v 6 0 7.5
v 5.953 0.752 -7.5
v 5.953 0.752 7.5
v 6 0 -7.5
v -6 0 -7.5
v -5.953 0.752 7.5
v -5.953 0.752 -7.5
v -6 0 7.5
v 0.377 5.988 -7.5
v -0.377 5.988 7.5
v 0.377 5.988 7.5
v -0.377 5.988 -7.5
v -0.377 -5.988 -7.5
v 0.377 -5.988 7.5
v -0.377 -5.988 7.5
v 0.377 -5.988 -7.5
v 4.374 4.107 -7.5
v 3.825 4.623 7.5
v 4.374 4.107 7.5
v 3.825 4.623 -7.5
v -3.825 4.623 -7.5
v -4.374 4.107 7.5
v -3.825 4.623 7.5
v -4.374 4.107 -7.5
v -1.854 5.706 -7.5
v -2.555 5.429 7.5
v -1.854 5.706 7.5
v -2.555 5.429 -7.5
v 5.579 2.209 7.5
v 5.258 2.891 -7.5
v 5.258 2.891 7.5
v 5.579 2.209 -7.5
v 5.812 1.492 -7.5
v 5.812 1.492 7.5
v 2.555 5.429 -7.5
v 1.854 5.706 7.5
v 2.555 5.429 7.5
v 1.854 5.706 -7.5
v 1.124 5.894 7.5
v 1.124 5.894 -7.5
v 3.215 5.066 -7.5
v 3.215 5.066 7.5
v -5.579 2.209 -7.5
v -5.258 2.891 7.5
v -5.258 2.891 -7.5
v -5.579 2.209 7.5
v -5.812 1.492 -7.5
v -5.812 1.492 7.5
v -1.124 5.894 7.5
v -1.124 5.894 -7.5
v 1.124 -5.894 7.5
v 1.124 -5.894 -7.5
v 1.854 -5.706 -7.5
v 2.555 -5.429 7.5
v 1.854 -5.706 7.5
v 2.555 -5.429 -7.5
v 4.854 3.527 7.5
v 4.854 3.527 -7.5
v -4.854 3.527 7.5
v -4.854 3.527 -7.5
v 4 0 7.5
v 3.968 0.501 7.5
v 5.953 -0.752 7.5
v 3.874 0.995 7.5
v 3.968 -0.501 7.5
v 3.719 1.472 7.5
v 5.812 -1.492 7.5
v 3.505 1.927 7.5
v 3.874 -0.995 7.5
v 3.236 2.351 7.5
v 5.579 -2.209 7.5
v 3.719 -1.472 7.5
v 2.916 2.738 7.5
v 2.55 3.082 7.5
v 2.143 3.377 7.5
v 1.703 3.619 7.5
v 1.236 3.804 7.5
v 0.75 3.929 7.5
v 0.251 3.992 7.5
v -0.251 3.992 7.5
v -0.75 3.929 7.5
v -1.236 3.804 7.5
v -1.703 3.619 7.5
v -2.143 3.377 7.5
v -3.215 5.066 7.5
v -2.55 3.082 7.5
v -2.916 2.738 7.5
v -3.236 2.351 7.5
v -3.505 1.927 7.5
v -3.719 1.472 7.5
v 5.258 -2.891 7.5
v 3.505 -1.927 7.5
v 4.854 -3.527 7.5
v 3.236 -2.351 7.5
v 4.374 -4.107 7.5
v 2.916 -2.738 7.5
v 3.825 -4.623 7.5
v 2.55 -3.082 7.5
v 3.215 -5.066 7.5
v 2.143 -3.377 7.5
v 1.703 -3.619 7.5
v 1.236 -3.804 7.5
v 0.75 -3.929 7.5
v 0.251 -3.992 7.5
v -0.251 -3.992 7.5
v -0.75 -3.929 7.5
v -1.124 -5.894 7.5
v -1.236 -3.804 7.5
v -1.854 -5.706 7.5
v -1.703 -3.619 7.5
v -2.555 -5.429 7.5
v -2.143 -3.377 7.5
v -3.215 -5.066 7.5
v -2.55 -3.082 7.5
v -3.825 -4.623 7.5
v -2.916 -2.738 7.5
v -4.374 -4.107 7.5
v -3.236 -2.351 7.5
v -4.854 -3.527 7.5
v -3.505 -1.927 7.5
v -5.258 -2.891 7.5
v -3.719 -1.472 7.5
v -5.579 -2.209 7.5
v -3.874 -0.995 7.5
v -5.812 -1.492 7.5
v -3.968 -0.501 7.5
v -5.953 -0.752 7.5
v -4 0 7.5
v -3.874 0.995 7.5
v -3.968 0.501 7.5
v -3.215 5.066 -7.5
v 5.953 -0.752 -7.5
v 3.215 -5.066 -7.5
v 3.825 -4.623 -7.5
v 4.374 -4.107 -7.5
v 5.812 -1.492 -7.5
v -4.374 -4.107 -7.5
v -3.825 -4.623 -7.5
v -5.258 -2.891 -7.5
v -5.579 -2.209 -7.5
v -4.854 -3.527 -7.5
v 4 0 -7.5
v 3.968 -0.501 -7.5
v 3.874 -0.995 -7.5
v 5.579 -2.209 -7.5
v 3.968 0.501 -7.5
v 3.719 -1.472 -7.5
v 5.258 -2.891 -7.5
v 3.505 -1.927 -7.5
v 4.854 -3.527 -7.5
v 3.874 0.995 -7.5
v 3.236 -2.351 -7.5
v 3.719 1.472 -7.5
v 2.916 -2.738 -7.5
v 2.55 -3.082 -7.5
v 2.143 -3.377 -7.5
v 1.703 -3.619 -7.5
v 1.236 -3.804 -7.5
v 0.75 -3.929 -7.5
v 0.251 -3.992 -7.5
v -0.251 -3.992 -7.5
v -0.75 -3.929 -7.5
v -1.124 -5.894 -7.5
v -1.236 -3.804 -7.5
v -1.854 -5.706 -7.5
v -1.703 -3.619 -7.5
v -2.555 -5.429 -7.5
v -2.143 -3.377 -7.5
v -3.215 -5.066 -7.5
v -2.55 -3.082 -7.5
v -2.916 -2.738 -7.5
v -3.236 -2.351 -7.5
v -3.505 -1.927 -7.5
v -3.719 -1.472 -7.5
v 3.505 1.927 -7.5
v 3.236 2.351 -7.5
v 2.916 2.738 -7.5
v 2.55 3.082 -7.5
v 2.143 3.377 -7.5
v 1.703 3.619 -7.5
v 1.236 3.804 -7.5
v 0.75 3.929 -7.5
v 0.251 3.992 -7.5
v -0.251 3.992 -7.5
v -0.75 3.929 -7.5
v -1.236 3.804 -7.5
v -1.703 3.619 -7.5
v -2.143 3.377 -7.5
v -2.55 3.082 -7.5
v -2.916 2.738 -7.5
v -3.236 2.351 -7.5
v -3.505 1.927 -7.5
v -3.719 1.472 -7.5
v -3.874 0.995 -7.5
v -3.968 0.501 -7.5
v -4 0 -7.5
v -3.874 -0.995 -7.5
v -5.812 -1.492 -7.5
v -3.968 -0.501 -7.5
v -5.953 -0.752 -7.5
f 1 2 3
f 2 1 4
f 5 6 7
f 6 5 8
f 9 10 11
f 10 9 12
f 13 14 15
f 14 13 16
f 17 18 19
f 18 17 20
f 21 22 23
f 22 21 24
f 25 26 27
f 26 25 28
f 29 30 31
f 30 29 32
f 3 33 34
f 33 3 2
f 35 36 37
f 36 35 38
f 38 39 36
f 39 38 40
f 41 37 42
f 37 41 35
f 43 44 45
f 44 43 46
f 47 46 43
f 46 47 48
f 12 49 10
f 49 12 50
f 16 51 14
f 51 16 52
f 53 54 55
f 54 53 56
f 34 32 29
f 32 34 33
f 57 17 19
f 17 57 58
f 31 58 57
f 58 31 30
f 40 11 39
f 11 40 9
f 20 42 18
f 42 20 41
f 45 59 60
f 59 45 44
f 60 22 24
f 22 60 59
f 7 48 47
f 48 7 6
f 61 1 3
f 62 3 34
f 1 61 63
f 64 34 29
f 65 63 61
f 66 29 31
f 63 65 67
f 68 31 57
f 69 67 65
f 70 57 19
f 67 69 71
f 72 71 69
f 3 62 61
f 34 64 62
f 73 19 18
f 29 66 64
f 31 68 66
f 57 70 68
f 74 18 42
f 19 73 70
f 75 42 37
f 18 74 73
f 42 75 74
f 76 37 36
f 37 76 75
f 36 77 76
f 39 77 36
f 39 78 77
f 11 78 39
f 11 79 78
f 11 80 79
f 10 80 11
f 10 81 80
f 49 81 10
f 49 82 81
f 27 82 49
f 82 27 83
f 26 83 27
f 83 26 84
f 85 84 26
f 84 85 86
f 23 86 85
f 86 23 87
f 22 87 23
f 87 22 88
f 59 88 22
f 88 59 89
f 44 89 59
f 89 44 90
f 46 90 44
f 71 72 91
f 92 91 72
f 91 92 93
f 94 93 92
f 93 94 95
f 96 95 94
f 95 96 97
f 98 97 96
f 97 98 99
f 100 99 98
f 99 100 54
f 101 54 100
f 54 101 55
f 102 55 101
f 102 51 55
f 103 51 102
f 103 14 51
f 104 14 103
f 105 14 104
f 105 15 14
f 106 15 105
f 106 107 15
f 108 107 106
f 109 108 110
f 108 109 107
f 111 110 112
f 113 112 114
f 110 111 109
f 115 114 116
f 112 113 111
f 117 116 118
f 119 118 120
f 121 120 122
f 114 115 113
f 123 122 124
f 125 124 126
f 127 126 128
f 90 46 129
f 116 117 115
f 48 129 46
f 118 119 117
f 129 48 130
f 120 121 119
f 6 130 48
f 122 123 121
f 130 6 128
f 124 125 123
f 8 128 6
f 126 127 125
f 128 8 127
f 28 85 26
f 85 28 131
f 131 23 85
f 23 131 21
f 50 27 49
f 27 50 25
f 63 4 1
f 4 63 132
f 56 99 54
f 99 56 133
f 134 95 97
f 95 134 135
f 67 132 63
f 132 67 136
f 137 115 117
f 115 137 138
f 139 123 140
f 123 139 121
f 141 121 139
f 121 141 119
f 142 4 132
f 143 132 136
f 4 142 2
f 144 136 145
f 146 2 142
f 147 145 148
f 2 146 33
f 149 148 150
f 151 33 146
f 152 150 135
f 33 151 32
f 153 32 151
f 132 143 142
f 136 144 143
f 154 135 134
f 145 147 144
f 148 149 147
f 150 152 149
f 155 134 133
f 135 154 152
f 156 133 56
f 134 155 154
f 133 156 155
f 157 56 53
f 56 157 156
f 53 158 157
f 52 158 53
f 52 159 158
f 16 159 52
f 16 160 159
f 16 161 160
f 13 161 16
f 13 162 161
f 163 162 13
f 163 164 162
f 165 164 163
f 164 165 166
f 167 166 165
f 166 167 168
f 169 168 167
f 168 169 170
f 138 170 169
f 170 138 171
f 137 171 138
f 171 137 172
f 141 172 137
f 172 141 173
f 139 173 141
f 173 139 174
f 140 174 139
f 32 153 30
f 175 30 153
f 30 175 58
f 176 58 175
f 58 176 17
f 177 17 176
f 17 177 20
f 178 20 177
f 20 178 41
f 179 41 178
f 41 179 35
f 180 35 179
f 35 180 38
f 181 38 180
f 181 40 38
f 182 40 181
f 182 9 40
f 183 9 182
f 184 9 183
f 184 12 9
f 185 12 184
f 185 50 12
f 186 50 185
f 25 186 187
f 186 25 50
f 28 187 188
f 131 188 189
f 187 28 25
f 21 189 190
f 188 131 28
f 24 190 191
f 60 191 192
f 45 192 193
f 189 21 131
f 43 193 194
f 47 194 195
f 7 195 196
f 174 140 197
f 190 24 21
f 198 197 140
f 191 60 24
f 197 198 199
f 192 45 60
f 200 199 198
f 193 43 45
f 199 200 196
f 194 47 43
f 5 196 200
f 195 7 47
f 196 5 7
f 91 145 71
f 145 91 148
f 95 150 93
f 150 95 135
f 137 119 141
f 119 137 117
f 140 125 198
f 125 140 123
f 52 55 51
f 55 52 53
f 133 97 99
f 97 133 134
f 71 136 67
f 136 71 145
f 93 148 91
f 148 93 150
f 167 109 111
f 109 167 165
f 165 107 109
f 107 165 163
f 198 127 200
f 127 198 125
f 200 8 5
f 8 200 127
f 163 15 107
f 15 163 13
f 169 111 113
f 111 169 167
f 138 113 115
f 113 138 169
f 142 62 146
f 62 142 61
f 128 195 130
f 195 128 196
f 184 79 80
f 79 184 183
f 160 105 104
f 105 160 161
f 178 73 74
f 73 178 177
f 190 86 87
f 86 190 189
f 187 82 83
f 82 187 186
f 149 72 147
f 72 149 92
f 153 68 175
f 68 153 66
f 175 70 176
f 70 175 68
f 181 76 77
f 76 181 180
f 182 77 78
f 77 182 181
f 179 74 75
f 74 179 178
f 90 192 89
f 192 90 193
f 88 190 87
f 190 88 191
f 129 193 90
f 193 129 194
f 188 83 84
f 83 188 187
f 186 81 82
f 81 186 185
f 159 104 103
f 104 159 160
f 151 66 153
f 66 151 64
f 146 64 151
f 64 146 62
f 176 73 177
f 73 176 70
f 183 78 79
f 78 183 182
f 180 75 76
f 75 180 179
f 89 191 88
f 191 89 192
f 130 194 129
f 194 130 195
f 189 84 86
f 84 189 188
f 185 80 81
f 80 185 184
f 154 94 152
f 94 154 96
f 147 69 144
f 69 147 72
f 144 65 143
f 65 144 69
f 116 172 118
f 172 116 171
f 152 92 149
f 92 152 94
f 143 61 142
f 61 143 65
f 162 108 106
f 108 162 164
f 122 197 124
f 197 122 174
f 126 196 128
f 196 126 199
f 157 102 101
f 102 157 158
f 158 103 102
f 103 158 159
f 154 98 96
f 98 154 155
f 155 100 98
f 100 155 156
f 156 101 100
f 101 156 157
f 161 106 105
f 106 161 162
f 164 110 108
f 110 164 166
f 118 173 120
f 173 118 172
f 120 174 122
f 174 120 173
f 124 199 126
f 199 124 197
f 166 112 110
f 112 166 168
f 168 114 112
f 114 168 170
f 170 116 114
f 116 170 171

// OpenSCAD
$fn = 50;


difference() {
	union() {
		translate(v = [0, 0, -7.5000000000]) {
			cylinder(h = 15, r = 6.0000000000);
		}
	}
	union() {
		translate(v = [0, 0, -100.0000000000]) {
			cylinder(h = 200, r = 4);
		}
	}
}
